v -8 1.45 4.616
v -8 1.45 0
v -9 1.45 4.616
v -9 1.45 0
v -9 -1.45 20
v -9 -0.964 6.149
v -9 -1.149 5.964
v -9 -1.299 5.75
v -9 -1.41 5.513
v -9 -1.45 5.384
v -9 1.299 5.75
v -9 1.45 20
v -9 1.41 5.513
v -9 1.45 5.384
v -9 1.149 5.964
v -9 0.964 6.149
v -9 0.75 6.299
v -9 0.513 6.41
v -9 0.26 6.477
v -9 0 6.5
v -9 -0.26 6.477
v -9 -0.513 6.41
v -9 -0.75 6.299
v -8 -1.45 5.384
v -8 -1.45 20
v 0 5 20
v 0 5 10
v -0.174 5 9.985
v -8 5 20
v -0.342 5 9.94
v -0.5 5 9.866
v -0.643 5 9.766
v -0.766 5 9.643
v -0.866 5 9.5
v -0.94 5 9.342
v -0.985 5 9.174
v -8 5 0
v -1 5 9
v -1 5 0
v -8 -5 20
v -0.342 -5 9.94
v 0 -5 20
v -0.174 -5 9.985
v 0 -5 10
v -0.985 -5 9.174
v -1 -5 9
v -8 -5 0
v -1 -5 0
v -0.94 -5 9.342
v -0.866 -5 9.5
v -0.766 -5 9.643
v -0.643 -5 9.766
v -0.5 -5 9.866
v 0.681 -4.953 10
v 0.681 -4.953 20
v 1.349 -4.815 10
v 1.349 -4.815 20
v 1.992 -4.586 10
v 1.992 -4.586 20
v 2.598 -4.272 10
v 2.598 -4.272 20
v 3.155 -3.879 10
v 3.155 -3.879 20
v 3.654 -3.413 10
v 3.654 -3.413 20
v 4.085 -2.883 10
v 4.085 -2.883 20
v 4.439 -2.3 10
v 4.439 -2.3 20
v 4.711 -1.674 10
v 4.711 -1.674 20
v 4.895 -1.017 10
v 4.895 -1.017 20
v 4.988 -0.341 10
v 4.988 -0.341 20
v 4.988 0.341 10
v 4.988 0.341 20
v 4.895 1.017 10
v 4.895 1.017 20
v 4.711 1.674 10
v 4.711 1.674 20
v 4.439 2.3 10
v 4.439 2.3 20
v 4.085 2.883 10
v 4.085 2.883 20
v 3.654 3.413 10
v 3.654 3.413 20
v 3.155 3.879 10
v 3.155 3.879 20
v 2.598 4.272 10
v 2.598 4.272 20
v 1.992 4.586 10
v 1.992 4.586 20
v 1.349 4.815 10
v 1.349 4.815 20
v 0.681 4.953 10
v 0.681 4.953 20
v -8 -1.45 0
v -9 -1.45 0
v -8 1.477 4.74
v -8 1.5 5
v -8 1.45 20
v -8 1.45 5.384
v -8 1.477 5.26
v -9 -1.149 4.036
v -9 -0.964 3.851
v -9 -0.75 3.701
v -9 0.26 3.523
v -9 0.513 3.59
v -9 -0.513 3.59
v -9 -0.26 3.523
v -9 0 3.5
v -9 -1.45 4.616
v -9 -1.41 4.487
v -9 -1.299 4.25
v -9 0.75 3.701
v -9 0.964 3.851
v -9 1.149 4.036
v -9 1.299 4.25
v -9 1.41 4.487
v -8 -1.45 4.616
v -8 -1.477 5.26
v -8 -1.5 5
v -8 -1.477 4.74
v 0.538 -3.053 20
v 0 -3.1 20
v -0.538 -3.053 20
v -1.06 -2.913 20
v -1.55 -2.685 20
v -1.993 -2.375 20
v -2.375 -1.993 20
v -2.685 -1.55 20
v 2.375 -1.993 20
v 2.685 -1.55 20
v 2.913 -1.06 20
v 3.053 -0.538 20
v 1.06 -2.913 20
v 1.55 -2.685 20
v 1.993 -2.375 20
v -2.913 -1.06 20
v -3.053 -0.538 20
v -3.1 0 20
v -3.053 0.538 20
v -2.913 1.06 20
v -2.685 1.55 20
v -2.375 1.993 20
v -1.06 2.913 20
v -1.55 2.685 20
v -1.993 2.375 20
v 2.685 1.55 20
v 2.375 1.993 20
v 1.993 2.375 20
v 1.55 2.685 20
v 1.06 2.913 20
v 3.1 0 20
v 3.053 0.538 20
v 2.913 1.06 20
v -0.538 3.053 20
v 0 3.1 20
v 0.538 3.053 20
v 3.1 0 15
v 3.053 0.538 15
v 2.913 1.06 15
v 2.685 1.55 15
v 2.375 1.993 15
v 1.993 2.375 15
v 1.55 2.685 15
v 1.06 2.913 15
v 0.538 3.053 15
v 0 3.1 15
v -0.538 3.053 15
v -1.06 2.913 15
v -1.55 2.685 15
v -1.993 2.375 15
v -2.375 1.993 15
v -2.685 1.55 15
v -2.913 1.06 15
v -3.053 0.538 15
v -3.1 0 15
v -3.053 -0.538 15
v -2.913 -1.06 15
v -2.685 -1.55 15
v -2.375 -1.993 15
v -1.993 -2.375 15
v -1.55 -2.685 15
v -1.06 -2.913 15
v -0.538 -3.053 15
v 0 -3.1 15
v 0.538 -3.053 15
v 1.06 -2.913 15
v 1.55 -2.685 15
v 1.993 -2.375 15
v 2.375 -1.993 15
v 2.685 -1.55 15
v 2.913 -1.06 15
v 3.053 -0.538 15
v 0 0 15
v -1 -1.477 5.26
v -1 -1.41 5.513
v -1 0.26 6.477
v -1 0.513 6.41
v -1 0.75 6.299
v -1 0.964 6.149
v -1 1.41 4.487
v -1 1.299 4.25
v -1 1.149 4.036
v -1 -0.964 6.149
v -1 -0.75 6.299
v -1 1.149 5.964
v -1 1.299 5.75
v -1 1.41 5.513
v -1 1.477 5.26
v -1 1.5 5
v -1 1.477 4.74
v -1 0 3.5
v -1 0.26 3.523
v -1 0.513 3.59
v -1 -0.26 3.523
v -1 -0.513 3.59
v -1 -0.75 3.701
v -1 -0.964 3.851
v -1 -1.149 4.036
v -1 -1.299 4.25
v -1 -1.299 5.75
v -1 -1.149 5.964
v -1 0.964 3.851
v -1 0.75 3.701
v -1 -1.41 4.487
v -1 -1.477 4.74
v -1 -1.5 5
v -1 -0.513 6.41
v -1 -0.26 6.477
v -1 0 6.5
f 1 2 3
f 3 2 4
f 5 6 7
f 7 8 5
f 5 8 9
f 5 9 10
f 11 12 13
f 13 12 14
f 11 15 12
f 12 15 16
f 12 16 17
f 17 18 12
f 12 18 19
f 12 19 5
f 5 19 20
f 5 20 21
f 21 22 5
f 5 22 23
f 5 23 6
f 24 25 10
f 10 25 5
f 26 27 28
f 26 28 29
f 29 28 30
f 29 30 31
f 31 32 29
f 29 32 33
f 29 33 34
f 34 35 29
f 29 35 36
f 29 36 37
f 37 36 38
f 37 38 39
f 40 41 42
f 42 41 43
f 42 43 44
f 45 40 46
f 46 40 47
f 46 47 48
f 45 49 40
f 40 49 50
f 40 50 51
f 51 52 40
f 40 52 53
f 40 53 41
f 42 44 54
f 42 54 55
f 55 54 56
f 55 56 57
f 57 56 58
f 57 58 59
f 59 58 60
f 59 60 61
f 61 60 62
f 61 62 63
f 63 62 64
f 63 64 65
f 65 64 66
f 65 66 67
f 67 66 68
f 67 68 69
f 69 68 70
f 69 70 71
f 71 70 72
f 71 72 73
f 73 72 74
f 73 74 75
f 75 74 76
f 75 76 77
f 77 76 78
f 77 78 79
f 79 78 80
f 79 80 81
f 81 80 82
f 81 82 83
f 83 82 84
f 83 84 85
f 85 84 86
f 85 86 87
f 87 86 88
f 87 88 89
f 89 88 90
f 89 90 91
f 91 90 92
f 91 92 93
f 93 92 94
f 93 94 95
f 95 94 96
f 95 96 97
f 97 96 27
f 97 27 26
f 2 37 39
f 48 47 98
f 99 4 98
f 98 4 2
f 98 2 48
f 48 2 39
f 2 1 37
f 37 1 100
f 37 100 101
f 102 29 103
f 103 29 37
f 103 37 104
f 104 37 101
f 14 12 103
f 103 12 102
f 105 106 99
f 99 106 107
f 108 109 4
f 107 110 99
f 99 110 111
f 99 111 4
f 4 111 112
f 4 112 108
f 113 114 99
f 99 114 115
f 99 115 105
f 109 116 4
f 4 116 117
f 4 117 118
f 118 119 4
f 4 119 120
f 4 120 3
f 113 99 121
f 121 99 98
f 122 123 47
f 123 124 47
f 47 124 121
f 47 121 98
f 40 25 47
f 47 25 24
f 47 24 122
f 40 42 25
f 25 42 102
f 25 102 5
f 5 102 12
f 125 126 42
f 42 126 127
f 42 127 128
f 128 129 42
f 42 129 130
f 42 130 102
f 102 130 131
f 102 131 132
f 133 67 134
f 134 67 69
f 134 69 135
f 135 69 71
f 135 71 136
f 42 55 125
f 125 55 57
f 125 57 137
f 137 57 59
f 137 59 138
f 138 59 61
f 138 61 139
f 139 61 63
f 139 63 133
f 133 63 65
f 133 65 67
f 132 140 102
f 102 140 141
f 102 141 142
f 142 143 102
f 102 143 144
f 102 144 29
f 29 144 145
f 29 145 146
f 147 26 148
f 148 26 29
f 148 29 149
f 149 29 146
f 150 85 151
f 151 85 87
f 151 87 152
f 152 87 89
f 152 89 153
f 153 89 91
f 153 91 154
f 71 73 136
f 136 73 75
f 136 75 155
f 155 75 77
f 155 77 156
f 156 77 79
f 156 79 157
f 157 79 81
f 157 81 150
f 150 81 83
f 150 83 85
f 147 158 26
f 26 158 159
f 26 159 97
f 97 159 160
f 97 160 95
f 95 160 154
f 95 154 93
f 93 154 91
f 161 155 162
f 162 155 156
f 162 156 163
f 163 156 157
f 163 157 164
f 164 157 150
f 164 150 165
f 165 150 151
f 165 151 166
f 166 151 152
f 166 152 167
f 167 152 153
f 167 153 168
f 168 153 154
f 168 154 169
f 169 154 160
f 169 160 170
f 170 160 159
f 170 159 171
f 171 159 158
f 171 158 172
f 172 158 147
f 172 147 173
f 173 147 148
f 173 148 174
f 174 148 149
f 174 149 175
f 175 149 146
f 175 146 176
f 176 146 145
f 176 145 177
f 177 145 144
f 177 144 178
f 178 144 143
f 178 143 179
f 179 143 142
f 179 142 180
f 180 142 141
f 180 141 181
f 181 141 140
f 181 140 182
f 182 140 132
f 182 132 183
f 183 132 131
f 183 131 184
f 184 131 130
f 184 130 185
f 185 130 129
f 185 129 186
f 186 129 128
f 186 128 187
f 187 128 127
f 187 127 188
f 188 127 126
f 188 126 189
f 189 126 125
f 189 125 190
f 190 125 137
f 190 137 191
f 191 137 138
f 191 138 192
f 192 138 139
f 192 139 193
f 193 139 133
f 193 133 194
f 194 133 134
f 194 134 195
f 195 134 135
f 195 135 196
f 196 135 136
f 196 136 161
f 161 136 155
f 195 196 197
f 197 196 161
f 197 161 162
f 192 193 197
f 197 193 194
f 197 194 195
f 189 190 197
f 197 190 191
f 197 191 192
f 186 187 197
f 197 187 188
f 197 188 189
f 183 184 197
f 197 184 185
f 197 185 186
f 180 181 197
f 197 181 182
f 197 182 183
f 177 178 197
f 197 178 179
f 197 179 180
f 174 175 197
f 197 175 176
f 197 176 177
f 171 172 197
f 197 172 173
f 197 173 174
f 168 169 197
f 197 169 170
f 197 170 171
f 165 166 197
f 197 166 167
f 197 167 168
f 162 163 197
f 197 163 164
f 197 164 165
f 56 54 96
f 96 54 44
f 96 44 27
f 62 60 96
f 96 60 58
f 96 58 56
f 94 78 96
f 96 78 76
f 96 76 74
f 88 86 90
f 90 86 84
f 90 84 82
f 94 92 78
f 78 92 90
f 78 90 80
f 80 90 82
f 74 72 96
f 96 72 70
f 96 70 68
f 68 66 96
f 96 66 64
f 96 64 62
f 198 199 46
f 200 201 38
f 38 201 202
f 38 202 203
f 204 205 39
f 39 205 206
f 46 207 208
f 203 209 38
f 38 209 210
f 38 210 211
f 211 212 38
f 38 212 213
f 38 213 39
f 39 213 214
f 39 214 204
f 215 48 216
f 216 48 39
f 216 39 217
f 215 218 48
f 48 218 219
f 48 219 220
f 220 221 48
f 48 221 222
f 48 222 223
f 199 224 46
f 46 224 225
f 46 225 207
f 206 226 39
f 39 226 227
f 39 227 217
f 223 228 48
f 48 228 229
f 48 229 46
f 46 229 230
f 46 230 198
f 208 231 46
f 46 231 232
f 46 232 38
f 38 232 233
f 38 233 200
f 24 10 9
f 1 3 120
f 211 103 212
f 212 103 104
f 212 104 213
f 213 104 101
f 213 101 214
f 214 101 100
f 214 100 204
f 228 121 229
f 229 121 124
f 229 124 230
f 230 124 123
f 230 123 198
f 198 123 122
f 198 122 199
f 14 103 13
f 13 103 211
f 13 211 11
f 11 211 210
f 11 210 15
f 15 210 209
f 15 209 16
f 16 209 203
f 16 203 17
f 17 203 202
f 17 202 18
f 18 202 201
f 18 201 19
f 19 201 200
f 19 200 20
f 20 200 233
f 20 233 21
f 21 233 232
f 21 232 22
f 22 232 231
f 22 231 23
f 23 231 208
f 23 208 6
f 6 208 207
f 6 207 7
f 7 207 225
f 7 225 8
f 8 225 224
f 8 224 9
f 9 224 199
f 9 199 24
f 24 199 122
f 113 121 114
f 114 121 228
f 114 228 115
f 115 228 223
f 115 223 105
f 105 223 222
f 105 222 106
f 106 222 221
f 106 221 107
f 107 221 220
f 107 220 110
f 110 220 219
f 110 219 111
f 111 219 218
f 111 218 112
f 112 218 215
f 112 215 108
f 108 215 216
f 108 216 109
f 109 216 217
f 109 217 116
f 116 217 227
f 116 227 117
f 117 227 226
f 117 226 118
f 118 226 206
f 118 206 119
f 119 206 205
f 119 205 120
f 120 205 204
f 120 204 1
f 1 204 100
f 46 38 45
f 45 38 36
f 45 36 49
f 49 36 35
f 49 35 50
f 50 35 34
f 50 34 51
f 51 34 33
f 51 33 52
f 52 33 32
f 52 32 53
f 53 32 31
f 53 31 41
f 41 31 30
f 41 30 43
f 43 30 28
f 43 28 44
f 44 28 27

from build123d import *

# Parameters (mm, degrees)
MAIN_DEPTH                     = 20
SKETCH2_R                      = 3.1
SHAFTHOLE_DEPTH                = 5
SKETCH3_W                      = 10
SKETCH3_H                      = 10
MAKERBEAMRECTANGULARHOLE_DEPTH = 7
SKETCH4_R                      = 1.5
MAKERBEAMHOLE_DEPTH            = 9
FILLET1_R                      = 1


with BuildPart() as part:
    # Sketch1 → Main (new body)
    with BuildSketch(Plane.XY):
        with BuildLine():
            Line((-8, 5), (-8, 1.45))
            Line((-8, 1.45), (-9, 1.45))
            Line((-9, 1.45), (-9, -1.45))
            Line((-9, -1.45), (-8, -1.45))
            Line((-8, -1.45), (-8, -5))
            Line((-8, -5), (0, -5))
            ThreePointArc((0, -5), (5, 0), (0, 5))
            Line((0, 5), (-8, 5))
        make_face()
    extrude(amount=MAIN_DEPTH)

    # Sketch2 → ShaftHole (cut)
    with BuildSketch(Plane.XY.offset(20)):
        Circle(SKETCH2_R)
    extrude(amount=-SHAFTHOLE_DEPTH, mode=Mode.SUBTRACT)

    # Sketch3 → MakerBeamRectangularHole (cut, through all)
    with BuildSketch(Plane(origin=(-1, 0, 0), x_dir=(0, 0, -1), z_dir=(1, 0, 0))):
        with Locations((-5, 0)):
            Rectangle(SKETCH3_W, SKETCH3_H)
    extrude(amount=MAKERBEAMRECTANGULARHOLE_DEPTH, mode=Mode.SUBTRACT)

    # Sketch4 → MakerBeamHole (cut, through all)
    with BuildSketch(Plane(origin=(-1, 0, 0), x_dir=(0, 0, -1), z_dir=(1, 0, 0))):
        with Locations((-5, 0)):
            Circle(SKETCH4_R)
    extrude(amount=-MAKERBEAMHOLE_DEPTH, mode=Mode.SUBTRACT)

    # Fillet1
    fillet1_edges = [part.edges().sort_by_distance(p)[0] for p in [
        (-1, 0, 10),
    ]]
    fillet(fillet1_edges, radius=FILLET1_R)


solid = part.part
